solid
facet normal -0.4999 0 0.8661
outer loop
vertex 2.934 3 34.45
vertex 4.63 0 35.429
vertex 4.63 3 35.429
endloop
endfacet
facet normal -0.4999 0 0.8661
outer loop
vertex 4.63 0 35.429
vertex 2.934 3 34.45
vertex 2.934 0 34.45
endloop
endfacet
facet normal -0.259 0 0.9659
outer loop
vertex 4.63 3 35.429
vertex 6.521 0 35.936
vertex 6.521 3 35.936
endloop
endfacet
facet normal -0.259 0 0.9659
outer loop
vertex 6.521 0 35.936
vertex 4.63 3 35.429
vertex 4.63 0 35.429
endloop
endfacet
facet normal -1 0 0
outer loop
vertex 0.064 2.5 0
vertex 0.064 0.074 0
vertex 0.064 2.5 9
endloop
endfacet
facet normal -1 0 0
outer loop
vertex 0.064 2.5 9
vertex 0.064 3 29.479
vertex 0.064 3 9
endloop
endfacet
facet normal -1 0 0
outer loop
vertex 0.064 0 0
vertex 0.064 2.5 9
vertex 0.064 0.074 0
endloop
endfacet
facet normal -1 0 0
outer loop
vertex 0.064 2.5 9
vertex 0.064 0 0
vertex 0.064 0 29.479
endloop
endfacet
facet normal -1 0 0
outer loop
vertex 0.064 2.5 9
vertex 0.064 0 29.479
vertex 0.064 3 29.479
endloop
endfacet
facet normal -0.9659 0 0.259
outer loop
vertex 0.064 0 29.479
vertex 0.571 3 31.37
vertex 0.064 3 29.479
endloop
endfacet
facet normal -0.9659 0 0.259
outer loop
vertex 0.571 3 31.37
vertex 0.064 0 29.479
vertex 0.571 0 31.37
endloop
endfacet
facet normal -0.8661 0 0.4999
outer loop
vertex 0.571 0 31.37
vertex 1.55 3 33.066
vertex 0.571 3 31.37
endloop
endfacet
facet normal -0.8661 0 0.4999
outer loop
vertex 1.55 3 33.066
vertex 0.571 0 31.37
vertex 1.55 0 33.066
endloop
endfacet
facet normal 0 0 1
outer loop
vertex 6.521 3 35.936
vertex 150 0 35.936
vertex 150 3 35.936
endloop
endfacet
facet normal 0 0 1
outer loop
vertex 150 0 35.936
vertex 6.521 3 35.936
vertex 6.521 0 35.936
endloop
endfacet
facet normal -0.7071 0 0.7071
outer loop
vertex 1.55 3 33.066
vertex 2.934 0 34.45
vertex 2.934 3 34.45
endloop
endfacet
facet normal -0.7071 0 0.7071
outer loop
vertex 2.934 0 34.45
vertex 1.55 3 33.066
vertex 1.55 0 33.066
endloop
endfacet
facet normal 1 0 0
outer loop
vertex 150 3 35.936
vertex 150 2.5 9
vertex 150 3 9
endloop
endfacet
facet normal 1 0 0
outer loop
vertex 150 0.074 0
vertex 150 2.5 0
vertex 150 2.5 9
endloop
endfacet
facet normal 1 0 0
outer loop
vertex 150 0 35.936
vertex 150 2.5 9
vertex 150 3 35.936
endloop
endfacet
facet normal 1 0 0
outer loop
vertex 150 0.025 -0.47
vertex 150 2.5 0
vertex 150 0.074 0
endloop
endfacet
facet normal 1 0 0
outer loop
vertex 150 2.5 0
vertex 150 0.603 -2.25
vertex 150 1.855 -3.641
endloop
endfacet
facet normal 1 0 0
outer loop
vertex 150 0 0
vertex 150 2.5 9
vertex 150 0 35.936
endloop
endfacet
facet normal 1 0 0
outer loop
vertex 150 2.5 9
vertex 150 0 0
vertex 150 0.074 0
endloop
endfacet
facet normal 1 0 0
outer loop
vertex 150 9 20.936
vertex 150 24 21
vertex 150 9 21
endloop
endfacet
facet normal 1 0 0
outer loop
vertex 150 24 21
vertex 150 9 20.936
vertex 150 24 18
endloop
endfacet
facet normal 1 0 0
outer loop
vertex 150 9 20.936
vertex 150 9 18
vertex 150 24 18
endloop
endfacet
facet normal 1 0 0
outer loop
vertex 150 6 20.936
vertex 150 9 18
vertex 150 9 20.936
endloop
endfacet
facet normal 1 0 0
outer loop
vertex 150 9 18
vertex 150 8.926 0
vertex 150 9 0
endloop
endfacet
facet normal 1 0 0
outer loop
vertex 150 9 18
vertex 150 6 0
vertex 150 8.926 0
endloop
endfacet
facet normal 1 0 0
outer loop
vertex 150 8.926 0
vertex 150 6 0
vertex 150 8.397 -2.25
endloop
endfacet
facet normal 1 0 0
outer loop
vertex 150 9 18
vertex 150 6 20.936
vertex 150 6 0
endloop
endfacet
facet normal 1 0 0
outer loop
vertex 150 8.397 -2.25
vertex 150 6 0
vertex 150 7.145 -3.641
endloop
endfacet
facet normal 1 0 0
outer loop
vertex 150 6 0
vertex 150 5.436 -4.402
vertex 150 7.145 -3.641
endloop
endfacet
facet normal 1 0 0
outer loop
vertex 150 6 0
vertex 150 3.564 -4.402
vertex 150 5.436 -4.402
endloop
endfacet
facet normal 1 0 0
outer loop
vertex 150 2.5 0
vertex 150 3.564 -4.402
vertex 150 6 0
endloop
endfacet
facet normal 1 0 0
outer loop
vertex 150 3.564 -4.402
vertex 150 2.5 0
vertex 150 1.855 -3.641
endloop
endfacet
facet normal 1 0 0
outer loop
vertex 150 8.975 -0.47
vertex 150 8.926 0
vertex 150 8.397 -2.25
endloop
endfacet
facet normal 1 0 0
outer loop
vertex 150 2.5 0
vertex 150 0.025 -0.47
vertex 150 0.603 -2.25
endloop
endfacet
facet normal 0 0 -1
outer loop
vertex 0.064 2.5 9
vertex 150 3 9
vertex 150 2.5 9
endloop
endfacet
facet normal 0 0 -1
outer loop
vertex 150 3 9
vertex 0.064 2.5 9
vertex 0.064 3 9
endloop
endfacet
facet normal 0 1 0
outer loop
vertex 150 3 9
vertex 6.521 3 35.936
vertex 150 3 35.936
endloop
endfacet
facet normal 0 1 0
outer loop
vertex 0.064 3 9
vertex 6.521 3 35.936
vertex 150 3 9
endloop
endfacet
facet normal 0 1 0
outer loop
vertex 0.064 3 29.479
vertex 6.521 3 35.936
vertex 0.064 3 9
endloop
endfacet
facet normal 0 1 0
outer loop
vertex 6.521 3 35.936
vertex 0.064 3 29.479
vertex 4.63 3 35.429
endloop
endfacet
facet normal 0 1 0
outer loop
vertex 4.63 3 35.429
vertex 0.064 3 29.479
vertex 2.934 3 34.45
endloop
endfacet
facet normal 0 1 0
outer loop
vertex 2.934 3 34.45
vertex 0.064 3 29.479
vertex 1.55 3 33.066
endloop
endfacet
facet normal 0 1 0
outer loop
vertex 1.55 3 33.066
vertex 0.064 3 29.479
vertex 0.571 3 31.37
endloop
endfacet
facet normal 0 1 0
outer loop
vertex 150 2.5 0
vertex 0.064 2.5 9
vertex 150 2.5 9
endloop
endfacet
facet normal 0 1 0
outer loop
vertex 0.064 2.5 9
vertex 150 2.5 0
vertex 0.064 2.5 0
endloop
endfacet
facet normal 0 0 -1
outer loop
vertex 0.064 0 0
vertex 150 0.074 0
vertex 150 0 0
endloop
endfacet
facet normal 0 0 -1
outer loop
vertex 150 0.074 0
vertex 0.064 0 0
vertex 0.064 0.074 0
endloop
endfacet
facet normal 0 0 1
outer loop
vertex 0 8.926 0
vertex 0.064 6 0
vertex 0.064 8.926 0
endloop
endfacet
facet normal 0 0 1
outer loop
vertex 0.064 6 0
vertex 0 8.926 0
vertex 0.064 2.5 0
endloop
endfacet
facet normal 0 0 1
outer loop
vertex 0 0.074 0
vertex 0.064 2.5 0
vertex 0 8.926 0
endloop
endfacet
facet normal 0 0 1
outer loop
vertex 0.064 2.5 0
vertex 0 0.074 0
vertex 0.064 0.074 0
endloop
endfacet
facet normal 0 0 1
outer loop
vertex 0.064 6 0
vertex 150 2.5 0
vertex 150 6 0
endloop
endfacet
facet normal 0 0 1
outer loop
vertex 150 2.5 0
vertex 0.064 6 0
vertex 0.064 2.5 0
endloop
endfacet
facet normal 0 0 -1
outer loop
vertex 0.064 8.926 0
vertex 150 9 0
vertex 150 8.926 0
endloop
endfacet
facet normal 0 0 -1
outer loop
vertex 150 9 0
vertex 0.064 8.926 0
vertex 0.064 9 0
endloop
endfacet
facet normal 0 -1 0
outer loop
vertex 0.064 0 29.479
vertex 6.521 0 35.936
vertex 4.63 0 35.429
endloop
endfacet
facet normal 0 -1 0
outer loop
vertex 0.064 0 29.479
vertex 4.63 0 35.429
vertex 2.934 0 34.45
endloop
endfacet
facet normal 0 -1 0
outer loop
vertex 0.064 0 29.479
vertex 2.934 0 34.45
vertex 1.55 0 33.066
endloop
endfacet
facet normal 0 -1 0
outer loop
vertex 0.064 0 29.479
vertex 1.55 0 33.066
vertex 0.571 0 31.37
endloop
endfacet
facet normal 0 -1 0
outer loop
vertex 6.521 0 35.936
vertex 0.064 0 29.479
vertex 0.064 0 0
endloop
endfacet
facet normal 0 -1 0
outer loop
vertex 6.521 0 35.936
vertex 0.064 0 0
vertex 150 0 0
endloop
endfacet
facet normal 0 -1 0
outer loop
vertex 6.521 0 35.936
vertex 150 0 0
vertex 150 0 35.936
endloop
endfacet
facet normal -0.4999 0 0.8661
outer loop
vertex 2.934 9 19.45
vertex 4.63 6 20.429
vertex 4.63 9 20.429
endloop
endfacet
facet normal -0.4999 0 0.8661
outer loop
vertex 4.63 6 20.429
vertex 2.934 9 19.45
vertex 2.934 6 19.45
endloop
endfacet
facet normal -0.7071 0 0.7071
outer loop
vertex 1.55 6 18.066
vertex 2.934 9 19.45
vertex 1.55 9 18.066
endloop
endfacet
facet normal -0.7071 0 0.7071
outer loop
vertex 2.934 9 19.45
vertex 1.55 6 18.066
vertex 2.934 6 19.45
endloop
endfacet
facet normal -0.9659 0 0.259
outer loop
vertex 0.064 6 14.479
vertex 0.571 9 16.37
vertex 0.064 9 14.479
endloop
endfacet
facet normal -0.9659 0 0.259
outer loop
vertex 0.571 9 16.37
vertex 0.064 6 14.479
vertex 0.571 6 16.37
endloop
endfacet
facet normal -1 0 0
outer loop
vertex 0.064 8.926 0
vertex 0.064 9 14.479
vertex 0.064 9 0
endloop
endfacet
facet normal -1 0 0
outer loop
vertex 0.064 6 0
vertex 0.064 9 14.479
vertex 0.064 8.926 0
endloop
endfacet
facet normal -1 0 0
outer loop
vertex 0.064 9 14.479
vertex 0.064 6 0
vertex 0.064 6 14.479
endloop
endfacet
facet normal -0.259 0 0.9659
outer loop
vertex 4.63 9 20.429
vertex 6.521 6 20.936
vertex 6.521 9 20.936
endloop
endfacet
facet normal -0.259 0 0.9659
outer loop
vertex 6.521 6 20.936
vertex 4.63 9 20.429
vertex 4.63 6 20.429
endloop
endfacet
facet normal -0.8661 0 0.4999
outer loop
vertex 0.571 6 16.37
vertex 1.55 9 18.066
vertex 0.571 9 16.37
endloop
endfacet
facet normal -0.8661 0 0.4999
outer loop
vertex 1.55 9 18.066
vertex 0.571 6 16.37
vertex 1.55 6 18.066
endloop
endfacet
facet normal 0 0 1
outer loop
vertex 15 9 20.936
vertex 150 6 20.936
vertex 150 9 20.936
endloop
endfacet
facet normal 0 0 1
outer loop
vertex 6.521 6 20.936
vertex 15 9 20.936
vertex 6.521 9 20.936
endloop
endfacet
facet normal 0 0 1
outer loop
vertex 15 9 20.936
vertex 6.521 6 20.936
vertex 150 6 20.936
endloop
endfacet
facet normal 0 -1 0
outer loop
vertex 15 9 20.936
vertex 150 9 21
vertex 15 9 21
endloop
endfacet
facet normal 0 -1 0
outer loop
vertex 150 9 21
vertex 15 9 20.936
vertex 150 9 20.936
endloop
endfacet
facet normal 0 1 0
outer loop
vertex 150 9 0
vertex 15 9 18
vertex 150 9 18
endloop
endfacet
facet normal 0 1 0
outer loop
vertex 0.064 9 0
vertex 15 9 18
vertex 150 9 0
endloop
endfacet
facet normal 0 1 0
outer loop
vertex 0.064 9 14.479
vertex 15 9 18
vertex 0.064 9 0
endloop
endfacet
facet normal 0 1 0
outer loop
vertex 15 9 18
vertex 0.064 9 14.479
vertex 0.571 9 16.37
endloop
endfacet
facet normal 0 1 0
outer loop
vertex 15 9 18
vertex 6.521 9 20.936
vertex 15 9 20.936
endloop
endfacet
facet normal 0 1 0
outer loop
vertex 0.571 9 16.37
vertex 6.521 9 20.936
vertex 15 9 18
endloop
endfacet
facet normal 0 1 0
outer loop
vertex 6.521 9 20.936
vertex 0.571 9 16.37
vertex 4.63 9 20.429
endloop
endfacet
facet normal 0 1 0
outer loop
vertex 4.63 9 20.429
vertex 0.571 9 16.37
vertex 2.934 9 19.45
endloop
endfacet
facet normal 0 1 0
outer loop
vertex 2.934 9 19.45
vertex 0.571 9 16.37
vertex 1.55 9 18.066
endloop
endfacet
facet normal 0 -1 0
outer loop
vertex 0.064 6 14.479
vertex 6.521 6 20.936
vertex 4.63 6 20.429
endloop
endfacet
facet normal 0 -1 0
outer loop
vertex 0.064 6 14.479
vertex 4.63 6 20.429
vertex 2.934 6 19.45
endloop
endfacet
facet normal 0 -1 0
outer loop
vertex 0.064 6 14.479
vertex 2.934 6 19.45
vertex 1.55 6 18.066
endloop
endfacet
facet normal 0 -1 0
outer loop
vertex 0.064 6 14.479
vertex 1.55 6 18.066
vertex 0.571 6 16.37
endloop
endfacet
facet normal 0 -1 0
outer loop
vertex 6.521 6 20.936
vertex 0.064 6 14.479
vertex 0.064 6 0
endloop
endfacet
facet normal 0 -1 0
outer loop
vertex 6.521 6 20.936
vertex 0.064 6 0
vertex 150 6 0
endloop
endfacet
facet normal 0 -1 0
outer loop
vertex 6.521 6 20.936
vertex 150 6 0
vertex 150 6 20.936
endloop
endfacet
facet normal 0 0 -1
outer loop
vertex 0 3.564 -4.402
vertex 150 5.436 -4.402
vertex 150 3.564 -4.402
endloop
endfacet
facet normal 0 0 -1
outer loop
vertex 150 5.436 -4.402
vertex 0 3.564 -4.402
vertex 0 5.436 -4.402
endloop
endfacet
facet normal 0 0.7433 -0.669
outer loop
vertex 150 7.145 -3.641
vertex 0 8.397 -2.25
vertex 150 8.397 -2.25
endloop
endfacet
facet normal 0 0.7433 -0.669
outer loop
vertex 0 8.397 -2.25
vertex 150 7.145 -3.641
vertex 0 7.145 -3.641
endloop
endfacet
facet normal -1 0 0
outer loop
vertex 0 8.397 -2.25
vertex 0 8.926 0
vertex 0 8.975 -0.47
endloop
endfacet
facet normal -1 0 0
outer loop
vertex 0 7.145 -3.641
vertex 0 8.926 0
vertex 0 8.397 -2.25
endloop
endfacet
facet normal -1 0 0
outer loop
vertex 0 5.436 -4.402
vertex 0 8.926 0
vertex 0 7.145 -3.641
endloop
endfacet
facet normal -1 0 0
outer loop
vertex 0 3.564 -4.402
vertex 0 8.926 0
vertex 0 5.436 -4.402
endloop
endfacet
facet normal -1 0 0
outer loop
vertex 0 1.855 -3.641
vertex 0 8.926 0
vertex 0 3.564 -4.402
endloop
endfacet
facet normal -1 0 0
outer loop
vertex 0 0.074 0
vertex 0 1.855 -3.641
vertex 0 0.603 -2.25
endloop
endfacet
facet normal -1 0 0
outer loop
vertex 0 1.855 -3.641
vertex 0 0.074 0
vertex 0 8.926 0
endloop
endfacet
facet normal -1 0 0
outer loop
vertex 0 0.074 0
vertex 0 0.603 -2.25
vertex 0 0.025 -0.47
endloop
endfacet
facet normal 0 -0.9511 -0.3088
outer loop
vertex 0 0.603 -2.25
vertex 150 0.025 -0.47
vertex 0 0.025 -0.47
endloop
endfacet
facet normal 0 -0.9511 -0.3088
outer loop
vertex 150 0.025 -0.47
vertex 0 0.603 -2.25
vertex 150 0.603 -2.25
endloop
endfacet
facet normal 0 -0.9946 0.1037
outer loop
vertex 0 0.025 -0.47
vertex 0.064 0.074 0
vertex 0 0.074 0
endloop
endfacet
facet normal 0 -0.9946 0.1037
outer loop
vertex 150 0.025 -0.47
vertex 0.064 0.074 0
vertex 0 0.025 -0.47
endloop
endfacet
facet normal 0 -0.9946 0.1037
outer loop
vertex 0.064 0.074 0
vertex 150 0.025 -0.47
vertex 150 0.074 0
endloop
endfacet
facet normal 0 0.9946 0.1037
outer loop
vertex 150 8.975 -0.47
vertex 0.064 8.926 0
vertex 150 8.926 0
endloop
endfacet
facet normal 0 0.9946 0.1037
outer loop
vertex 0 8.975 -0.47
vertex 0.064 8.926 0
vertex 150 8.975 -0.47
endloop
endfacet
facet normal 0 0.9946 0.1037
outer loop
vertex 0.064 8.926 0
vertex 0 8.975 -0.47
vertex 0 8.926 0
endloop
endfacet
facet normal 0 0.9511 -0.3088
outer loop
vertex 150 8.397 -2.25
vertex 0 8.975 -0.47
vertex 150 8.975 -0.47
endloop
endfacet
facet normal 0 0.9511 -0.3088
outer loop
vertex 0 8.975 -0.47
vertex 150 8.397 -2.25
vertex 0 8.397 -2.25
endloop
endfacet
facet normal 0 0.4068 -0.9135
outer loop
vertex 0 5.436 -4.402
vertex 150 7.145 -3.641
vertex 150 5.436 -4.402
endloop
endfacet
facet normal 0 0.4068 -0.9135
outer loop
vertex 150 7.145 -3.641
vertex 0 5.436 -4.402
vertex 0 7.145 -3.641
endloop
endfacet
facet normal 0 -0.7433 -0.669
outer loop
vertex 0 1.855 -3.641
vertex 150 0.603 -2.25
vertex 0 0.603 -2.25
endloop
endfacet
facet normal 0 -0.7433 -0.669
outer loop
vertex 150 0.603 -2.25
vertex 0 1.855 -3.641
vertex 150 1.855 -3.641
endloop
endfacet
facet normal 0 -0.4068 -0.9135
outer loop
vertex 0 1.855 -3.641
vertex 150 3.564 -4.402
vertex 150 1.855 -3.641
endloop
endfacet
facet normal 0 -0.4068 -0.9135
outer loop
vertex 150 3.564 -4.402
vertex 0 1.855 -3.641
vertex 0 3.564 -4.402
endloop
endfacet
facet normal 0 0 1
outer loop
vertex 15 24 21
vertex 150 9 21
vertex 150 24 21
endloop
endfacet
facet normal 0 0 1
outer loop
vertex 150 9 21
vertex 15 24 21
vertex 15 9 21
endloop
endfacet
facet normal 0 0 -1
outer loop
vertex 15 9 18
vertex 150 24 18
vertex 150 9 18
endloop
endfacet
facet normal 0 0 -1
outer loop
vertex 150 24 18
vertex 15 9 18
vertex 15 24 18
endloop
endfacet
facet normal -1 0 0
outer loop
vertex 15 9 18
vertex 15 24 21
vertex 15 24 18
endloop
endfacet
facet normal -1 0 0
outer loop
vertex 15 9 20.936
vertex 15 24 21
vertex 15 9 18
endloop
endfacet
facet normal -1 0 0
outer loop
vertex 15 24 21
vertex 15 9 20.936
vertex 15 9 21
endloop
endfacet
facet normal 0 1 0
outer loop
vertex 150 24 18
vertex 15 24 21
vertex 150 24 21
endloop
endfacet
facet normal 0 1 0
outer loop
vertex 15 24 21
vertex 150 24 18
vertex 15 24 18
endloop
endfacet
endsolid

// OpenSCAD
height1    =  27.0;
height2    =  36.0;
thickness1 =   2.5;
thickness2 =   3.0;
depth      =  21.0;
width      =  15.0;
length     = 150.0;
corner     =  15.0;
gap        =   0.5;

module round_edge(length, thickness, height, corner) {
    minkowski() {
        sphere( d = corner );
        cube([length, thickness, height]);
    }
}

module round_edge_long( length, thickness) {
    translate([length, 0.5*thickness, 0])
    rotate([0, -90, 0])
    difference() {
        cylinder(d = thickness, h = length);
        translate([0, -2*thickness, -2*length])
            cube([3*thickness, 4*thickness, 4*length]);
    }
}

module handle(length, thickness, height, corner) {
    intersection() {
        translate([0.5*corner, 0, -0.5*corner]) round_edge(length,  thickness, height, corner);
        cube([length, thickness, height]);
    }
}

translate([0, thickness1, (height2-height1)])
    color([0, 0, 1])
        handle(length, (thickness2-thickness1), height1, corner);
translate([0, 0, 0])
    color([1, 1, 1])
        handle(length, thickness1, height2, corner);

translate([0, thickness1+thickness2+gap, 0])
    handle(length, thickness2, depth, corner);

round_edge_long( length, thickness1+2*thickness2+gap );

translate([corner, thickness1+2*thickness2+gap, depth-thickness2])
    cube([length-corner, width, thickness2]);
